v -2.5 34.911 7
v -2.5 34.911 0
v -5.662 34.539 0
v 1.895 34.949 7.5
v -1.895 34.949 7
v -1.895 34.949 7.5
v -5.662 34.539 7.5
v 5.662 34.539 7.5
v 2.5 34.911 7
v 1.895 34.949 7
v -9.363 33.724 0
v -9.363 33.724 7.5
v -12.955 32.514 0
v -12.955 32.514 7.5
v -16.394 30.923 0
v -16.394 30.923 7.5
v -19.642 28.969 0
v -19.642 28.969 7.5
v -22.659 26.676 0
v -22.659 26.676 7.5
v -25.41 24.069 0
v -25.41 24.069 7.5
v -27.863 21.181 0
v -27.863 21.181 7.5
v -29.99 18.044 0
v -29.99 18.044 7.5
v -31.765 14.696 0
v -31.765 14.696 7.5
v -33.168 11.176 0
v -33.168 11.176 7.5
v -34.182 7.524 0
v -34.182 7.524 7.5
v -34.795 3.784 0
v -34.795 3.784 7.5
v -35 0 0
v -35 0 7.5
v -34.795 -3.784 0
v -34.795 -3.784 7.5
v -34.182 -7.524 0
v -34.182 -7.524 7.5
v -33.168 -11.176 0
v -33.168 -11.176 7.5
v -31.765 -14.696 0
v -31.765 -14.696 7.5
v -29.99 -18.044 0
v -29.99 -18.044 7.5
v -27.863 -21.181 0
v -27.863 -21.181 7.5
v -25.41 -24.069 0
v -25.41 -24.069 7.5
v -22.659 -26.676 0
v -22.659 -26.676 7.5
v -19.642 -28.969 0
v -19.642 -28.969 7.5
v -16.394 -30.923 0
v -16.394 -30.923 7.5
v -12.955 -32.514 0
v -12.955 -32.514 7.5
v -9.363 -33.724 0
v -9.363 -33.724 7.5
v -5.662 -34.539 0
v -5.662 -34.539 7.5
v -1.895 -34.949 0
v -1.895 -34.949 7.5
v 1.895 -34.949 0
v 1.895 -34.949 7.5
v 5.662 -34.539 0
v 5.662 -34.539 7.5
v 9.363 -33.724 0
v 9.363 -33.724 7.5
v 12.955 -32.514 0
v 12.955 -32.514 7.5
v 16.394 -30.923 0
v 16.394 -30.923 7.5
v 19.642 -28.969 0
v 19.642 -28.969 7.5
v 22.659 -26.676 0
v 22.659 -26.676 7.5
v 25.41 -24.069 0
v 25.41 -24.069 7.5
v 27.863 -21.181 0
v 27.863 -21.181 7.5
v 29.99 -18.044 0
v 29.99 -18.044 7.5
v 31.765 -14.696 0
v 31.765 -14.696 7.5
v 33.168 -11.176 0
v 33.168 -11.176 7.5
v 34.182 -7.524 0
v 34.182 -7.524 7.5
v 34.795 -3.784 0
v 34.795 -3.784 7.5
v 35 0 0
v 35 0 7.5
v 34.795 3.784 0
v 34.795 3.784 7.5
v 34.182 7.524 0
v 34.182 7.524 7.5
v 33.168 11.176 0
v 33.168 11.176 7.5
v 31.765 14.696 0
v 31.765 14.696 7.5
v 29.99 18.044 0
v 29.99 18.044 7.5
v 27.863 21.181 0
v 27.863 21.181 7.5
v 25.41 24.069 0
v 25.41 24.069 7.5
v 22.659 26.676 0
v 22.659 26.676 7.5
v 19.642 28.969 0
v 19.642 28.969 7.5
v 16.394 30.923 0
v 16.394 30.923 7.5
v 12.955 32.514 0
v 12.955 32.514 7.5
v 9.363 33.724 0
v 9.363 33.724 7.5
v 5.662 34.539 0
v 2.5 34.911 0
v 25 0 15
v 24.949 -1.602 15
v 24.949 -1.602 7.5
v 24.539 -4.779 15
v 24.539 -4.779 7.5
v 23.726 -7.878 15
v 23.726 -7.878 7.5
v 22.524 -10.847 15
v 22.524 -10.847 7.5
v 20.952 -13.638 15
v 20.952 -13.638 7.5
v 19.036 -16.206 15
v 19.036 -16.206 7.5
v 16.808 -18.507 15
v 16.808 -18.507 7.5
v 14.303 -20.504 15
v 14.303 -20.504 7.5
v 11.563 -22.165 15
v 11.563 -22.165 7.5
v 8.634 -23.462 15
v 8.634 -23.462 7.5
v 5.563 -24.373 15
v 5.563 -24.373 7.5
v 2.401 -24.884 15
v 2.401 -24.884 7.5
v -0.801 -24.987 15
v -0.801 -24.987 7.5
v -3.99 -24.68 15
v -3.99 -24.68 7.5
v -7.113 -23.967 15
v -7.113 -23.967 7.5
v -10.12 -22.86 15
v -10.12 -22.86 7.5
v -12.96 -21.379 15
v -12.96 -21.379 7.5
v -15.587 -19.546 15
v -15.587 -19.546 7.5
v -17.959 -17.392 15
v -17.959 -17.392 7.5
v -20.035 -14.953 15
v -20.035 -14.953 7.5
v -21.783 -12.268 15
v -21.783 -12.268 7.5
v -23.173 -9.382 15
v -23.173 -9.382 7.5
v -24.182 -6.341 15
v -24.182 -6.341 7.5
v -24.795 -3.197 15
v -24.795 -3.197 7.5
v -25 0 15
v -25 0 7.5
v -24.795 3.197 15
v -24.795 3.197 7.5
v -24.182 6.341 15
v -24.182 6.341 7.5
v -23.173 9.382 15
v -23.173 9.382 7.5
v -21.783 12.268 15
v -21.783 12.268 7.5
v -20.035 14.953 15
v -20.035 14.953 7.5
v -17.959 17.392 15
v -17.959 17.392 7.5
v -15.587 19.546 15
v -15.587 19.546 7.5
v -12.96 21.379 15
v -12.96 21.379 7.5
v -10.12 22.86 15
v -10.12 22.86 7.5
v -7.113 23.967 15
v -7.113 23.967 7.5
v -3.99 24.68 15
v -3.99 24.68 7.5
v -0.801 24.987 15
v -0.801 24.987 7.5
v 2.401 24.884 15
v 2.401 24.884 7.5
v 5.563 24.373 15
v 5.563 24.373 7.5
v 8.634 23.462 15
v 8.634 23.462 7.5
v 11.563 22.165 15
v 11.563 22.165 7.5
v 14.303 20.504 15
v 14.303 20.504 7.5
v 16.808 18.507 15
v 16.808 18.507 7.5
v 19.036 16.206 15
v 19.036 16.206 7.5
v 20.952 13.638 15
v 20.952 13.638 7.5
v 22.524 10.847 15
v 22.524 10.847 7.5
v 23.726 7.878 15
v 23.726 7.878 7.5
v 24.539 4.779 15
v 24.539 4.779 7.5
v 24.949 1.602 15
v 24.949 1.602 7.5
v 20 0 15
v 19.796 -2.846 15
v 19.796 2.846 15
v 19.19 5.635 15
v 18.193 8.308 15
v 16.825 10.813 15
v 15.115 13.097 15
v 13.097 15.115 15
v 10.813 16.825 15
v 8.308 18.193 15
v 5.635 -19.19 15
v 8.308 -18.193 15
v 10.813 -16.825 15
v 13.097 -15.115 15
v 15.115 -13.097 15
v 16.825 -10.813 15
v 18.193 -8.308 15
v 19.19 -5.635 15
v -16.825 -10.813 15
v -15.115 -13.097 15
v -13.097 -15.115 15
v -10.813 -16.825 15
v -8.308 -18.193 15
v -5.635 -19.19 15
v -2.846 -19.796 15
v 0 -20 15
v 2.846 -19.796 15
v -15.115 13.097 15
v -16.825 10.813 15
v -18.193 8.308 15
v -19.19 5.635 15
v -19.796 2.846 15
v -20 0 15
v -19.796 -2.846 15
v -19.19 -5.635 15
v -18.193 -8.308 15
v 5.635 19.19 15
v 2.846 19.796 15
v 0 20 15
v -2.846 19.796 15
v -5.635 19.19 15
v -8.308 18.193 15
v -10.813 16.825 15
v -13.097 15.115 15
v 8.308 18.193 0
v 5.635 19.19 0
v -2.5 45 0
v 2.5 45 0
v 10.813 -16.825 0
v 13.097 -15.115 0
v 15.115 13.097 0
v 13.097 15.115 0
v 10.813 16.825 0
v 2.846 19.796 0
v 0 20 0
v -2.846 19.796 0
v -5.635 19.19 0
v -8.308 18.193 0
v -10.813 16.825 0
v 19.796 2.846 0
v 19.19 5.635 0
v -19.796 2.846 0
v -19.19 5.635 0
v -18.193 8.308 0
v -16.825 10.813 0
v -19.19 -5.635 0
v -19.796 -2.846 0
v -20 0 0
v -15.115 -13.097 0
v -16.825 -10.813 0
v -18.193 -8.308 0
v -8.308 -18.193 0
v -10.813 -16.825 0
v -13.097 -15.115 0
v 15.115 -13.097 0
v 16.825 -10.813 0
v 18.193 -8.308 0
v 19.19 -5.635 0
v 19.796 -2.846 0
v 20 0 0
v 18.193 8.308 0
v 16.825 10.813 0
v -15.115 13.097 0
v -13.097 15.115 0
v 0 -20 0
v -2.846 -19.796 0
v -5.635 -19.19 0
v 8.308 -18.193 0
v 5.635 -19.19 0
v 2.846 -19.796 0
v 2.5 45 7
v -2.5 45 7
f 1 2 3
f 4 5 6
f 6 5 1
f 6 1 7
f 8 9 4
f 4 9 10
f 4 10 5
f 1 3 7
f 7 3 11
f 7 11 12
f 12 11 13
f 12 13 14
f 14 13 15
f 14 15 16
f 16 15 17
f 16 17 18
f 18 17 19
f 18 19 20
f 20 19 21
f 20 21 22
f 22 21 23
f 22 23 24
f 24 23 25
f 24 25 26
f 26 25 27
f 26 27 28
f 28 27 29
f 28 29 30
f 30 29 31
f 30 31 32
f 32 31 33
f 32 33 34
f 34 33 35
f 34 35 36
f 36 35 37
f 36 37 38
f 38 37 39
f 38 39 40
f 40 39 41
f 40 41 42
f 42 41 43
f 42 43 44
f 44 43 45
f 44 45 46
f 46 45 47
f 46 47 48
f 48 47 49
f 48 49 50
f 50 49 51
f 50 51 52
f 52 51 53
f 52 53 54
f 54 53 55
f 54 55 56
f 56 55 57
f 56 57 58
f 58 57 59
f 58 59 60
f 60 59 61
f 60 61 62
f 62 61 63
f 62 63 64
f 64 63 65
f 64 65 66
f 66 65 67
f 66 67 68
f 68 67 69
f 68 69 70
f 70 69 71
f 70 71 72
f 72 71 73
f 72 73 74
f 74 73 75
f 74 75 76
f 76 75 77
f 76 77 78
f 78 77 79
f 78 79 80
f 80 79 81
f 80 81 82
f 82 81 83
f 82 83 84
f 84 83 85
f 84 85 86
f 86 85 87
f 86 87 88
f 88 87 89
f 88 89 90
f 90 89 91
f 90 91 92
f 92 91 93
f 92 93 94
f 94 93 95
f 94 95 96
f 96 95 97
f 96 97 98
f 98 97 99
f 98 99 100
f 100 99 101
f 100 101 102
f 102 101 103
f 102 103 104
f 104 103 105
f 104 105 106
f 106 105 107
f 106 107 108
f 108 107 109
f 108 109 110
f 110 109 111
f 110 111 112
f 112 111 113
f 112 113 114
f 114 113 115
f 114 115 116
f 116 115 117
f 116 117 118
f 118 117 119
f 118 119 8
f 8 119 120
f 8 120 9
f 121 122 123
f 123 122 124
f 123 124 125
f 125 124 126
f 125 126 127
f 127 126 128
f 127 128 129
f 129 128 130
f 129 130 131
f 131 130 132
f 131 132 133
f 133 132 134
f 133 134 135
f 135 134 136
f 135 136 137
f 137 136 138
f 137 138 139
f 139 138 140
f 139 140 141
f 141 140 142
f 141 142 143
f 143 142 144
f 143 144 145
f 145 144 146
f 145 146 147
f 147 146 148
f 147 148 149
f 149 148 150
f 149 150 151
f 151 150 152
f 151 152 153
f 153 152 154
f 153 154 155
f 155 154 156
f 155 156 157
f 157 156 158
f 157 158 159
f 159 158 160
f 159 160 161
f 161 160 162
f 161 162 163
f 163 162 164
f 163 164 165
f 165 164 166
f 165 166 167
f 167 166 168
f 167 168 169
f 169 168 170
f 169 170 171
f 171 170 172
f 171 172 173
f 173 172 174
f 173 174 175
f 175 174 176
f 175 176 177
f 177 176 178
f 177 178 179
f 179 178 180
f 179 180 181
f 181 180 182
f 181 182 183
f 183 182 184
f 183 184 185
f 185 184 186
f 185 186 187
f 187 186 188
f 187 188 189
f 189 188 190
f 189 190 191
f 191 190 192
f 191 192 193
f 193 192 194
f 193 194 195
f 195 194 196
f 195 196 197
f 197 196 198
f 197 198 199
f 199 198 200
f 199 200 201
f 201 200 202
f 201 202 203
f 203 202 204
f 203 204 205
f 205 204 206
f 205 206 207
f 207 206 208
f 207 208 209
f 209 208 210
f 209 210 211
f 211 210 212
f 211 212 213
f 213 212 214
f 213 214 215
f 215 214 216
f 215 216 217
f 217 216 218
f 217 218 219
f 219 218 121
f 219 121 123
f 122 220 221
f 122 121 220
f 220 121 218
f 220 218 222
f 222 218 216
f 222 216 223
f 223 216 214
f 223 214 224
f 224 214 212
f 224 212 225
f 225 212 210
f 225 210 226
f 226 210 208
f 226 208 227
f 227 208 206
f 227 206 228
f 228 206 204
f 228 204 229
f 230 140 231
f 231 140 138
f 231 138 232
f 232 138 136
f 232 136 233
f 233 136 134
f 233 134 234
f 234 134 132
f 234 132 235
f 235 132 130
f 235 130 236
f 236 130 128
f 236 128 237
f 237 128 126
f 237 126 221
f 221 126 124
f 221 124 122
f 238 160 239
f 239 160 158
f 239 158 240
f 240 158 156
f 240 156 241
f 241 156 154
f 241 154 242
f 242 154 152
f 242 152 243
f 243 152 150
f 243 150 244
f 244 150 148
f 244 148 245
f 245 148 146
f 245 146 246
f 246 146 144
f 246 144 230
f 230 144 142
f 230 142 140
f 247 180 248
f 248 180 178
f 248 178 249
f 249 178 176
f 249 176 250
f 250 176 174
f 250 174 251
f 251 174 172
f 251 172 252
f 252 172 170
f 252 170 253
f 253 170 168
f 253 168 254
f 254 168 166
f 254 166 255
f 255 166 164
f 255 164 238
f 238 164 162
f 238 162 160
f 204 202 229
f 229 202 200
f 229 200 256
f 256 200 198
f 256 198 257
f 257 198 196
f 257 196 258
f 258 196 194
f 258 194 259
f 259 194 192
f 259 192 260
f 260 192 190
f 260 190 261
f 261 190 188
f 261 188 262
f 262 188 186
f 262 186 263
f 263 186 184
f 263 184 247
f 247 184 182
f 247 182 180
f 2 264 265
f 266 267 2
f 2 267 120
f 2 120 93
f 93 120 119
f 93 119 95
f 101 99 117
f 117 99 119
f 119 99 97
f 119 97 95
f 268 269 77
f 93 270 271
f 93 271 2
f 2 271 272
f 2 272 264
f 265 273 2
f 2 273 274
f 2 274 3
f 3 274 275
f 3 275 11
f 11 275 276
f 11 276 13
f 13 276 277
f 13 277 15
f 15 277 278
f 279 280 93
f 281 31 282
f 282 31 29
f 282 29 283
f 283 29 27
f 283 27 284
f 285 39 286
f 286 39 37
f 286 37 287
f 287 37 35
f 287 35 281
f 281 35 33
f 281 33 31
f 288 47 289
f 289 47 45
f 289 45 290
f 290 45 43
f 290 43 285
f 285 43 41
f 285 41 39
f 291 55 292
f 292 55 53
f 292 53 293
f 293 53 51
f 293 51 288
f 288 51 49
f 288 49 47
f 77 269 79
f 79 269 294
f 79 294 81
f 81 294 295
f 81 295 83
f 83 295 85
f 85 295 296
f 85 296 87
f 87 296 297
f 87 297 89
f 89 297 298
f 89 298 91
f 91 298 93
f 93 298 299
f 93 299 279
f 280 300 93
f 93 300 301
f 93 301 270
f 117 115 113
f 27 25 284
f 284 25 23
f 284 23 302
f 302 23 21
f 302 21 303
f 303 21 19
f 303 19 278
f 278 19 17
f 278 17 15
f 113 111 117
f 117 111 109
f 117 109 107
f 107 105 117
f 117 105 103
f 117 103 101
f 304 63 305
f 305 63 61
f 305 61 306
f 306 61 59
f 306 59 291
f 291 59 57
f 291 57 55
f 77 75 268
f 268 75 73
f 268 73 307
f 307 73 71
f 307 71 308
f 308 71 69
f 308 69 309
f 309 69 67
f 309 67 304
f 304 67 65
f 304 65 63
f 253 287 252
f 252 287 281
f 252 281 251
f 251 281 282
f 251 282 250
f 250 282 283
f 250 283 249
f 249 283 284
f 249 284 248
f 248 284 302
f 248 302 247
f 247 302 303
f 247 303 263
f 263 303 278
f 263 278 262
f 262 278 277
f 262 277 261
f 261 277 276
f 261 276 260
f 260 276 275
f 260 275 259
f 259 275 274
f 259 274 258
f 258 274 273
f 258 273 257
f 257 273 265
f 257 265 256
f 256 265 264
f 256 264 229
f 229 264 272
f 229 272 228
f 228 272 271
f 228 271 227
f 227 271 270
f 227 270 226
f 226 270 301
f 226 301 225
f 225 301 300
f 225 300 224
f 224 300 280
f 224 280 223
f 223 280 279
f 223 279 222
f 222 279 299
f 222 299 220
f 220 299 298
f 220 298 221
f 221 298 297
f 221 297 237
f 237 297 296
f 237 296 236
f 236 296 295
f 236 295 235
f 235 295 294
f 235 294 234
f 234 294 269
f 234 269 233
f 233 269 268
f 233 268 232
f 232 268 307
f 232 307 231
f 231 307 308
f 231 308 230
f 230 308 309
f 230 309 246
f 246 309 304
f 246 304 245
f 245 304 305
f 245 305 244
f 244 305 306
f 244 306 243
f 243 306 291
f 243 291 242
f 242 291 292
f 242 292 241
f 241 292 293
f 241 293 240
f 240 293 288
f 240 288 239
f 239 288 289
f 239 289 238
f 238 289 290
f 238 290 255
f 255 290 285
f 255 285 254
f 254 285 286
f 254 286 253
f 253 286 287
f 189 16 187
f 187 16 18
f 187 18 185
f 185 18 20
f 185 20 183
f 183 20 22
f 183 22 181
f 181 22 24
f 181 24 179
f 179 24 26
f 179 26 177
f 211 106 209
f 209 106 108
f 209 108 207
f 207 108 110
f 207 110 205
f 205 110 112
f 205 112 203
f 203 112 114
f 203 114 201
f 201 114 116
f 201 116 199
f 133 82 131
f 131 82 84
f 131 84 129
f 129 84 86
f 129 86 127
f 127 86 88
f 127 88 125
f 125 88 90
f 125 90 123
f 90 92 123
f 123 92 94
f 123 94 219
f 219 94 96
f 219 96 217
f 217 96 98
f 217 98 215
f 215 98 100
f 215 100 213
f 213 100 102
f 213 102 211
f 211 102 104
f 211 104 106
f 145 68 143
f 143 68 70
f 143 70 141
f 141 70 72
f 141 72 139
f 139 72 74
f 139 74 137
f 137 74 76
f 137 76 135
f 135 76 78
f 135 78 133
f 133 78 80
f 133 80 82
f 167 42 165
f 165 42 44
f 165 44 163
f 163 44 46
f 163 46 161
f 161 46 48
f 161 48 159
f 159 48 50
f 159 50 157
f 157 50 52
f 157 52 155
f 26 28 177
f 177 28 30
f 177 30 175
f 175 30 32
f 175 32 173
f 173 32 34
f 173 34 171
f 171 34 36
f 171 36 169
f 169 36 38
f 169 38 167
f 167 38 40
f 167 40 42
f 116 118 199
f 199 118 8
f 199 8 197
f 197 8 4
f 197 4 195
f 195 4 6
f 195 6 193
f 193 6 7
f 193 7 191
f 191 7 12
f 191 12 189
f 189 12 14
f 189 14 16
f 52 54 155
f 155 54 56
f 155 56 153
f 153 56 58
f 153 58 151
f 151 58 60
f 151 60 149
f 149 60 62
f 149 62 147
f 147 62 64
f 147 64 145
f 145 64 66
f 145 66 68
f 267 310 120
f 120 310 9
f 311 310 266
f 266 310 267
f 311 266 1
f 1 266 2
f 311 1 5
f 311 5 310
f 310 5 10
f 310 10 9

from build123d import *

# Parameters (mm, degrees)
SKETCH1_R           = 25
SKETCH1_R_2         = 20
BOSS_EXTRUDE1_DEPTH = 15
SKETCH2_R           = 35
SKETCH2_R_2         = 25
BOSS_EXTRUDE2_DEPTH = 7.5
SKETCH3_W           = 5
SKETCH3_H           = 16.794369207
BOSS_EXTRUDE3_DEPTH = 7


with BuildPart() as part:
    # Sketch1 → Boss-Extrude1 (new body)
    with BuildSketch(Plane.XY):
        Circle(SKETCH1_R)
        Circle(SKETCH1_R_2, mode=Mode.SUBTRACT)
    extrude(amount=BOSS_EXTRUDE1_DEPTH)

    # Sketch2 → Boss-Extrude2 (add)
    with BuildSketch(Plane(origin=(0, 0, 0), x_dir=(-1, 0, 0), z_dir=(0, 0, -1))):
        Circle(SKETCH2_R)
        Circle(SKETCH2_R_2, mode=Mode.SUBTRACT)
    extrude(amount=-BOSS_EXTRUDE2_DEPTH)

    # Sketch3 → Boss-Extrude3 (add)
    with BuildSketch(Plane.XY):
        with Locations((0, 36.602815396)):
            Rectangle(SKETCH3_W, SKETCH3_H)
    extrude(amount=BOSS_EXTRUDE3_DEPTH)


solid = part.part
